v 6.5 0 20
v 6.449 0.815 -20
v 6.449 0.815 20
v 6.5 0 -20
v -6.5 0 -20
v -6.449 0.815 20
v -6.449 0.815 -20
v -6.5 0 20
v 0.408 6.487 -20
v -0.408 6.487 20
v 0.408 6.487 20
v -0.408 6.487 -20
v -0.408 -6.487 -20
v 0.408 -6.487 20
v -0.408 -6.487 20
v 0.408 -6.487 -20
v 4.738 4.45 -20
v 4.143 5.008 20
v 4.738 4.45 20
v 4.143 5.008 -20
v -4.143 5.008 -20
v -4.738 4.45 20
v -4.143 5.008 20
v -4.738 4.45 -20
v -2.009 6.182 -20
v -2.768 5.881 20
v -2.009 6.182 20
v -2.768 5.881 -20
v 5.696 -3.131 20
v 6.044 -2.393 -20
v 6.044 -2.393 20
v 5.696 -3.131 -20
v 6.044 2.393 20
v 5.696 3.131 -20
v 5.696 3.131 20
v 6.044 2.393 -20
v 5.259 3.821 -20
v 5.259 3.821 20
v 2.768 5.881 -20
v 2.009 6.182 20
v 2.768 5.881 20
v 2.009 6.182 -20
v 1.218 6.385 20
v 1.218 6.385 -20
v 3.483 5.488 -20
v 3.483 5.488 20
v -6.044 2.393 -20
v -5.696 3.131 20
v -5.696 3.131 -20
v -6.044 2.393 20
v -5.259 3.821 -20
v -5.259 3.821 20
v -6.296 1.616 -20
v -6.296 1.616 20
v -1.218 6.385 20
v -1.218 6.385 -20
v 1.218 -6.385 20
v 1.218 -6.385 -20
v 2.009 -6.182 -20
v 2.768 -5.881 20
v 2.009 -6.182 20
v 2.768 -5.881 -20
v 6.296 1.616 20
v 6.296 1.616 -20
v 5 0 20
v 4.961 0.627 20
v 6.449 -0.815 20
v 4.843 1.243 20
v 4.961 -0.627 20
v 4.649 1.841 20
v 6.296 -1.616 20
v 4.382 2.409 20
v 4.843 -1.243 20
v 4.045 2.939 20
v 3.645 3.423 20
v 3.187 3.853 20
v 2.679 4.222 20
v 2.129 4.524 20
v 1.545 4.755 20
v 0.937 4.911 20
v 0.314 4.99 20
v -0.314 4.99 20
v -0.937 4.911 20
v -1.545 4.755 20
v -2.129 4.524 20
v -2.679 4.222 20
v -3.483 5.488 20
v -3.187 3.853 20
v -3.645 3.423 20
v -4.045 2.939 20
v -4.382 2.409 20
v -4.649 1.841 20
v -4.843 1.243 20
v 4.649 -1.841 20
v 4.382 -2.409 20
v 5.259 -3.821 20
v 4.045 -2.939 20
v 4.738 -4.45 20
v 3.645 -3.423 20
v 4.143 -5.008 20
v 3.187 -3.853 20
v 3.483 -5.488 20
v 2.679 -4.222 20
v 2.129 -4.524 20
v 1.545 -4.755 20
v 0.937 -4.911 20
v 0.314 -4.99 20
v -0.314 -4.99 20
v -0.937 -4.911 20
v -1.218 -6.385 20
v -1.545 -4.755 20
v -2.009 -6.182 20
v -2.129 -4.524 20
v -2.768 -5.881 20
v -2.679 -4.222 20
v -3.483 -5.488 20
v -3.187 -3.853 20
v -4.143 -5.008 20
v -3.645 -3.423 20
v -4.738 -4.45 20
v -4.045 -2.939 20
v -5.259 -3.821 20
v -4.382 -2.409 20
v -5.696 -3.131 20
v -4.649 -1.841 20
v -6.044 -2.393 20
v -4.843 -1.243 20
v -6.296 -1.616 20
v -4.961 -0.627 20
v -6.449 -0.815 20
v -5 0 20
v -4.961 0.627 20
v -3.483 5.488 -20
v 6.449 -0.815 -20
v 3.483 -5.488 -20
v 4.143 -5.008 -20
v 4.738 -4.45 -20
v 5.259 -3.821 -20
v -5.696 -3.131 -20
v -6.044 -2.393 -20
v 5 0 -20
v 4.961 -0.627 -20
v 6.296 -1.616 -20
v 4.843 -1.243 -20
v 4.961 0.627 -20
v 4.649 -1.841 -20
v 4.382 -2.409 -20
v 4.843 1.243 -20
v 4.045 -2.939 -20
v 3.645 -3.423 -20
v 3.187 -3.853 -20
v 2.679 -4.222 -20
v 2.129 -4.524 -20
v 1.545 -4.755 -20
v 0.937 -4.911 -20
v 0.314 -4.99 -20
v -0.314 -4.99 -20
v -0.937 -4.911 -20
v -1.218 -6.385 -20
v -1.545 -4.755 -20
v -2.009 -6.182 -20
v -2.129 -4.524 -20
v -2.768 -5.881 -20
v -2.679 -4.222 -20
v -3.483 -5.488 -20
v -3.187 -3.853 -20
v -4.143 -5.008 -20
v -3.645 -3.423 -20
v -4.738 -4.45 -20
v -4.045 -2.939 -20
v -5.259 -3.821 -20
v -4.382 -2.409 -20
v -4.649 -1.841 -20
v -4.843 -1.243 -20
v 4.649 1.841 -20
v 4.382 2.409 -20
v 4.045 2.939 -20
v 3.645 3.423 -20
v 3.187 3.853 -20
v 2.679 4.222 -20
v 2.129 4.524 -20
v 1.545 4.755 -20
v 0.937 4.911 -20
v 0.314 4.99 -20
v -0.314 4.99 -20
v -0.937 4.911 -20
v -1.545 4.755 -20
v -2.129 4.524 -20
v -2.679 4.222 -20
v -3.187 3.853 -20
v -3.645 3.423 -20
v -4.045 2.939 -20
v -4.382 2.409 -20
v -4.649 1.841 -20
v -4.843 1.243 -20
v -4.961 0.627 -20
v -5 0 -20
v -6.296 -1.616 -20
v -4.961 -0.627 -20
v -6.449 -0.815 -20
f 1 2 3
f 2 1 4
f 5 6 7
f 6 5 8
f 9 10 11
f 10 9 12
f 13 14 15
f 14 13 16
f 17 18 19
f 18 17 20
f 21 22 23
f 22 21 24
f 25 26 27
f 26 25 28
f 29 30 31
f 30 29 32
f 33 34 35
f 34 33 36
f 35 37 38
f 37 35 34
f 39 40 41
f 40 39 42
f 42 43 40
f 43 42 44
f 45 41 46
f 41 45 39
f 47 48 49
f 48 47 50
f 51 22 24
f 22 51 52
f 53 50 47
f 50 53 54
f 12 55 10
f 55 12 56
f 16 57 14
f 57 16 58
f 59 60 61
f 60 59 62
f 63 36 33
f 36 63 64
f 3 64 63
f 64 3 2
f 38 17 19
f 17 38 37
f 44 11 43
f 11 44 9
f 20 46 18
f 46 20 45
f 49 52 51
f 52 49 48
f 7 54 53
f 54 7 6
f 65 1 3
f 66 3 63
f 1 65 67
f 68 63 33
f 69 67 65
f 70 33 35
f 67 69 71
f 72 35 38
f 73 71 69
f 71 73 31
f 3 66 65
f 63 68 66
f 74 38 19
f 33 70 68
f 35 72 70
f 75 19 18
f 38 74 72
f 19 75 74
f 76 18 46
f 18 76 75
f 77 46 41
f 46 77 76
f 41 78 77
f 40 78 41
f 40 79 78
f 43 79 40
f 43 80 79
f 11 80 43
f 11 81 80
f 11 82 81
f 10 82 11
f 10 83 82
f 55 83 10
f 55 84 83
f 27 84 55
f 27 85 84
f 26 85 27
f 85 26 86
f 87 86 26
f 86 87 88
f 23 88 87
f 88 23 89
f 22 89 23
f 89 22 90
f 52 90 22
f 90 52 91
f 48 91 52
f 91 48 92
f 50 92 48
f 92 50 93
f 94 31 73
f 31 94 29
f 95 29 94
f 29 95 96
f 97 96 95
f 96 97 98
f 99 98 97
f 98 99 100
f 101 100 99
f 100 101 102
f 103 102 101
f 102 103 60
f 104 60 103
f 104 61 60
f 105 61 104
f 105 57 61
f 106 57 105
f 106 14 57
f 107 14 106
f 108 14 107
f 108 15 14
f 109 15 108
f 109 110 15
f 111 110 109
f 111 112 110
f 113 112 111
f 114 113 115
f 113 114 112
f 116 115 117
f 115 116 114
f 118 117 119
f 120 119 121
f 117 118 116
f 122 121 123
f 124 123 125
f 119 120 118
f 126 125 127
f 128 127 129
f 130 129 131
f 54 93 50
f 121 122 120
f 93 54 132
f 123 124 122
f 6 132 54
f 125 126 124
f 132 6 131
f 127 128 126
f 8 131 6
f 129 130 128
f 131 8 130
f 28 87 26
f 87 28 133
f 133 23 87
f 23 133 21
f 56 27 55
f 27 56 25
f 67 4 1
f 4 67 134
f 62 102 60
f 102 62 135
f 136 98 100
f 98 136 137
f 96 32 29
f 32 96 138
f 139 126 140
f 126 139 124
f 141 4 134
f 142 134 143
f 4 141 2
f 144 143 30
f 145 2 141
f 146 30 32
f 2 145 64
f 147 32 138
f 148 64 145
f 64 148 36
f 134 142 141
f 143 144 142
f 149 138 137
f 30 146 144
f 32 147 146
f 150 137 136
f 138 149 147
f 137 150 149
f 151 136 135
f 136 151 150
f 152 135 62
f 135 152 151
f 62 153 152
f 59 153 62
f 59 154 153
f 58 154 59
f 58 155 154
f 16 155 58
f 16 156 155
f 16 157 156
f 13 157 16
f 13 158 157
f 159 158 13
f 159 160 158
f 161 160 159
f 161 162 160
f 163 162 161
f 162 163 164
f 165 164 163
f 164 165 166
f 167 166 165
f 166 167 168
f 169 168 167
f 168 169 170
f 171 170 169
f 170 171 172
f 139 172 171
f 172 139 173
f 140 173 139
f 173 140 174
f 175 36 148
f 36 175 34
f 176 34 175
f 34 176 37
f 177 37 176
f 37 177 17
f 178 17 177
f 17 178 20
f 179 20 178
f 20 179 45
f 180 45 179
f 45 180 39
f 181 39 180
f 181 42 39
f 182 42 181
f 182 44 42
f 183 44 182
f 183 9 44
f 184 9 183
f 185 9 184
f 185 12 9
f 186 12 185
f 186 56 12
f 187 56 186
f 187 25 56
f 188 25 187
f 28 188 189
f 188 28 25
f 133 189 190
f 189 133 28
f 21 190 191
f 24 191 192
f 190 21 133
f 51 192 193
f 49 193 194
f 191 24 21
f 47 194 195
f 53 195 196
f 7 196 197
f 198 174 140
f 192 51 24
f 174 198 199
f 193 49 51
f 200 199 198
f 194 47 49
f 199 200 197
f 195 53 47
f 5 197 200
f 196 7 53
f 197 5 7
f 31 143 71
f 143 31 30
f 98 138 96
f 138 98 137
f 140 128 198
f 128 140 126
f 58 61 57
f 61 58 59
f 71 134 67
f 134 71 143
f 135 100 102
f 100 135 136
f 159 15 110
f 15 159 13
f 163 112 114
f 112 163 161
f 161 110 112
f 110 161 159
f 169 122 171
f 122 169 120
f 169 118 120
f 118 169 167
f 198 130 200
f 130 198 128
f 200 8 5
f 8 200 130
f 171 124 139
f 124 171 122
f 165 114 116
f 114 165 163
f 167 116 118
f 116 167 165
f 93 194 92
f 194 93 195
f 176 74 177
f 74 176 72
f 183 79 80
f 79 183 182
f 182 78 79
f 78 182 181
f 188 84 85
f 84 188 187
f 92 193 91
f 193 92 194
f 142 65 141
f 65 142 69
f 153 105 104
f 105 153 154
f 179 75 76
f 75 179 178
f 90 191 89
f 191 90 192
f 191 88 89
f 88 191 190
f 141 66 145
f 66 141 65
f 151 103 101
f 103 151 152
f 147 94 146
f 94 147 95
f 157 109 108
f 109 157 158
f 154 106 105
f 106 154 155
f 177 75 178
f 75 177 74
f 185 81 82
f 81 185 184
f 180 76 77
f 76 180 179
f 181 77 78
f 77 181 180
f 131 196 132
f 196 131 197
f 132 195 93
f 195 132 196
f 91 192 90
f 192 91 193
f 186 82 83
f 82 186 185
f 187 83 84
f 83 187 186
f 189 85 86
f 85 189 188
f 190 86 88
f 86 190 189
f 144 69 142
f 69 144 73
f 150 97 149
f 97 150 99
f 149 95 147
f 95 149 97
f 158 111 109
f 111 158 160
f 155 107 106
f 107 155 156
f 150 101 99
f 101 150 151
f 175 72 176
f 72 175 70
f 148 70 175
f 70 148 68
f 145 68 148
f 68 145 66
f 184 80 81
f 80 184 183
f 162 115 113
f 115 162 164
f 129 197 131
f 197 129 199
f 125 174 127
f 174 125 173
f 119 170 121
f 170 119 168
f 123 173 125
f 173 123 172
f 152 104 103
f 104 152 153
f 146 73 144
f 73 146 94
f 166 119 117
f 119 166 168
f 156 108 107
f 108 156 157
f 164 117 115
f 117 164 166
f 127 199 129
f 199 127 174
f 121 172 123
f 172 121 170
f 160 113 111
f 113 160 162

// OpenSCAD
$fn = 50;


difference() {
	union() {
		translate(v = [0, 0, -20.0000000000]) {
			cylinder(h = 40, r = 6.5000000000);
		}
	}
	union() {
		translate(v = [0, 0, -100.0000000000]) {
			cylinder(h = 200, r = 5);
		}
	}
}
